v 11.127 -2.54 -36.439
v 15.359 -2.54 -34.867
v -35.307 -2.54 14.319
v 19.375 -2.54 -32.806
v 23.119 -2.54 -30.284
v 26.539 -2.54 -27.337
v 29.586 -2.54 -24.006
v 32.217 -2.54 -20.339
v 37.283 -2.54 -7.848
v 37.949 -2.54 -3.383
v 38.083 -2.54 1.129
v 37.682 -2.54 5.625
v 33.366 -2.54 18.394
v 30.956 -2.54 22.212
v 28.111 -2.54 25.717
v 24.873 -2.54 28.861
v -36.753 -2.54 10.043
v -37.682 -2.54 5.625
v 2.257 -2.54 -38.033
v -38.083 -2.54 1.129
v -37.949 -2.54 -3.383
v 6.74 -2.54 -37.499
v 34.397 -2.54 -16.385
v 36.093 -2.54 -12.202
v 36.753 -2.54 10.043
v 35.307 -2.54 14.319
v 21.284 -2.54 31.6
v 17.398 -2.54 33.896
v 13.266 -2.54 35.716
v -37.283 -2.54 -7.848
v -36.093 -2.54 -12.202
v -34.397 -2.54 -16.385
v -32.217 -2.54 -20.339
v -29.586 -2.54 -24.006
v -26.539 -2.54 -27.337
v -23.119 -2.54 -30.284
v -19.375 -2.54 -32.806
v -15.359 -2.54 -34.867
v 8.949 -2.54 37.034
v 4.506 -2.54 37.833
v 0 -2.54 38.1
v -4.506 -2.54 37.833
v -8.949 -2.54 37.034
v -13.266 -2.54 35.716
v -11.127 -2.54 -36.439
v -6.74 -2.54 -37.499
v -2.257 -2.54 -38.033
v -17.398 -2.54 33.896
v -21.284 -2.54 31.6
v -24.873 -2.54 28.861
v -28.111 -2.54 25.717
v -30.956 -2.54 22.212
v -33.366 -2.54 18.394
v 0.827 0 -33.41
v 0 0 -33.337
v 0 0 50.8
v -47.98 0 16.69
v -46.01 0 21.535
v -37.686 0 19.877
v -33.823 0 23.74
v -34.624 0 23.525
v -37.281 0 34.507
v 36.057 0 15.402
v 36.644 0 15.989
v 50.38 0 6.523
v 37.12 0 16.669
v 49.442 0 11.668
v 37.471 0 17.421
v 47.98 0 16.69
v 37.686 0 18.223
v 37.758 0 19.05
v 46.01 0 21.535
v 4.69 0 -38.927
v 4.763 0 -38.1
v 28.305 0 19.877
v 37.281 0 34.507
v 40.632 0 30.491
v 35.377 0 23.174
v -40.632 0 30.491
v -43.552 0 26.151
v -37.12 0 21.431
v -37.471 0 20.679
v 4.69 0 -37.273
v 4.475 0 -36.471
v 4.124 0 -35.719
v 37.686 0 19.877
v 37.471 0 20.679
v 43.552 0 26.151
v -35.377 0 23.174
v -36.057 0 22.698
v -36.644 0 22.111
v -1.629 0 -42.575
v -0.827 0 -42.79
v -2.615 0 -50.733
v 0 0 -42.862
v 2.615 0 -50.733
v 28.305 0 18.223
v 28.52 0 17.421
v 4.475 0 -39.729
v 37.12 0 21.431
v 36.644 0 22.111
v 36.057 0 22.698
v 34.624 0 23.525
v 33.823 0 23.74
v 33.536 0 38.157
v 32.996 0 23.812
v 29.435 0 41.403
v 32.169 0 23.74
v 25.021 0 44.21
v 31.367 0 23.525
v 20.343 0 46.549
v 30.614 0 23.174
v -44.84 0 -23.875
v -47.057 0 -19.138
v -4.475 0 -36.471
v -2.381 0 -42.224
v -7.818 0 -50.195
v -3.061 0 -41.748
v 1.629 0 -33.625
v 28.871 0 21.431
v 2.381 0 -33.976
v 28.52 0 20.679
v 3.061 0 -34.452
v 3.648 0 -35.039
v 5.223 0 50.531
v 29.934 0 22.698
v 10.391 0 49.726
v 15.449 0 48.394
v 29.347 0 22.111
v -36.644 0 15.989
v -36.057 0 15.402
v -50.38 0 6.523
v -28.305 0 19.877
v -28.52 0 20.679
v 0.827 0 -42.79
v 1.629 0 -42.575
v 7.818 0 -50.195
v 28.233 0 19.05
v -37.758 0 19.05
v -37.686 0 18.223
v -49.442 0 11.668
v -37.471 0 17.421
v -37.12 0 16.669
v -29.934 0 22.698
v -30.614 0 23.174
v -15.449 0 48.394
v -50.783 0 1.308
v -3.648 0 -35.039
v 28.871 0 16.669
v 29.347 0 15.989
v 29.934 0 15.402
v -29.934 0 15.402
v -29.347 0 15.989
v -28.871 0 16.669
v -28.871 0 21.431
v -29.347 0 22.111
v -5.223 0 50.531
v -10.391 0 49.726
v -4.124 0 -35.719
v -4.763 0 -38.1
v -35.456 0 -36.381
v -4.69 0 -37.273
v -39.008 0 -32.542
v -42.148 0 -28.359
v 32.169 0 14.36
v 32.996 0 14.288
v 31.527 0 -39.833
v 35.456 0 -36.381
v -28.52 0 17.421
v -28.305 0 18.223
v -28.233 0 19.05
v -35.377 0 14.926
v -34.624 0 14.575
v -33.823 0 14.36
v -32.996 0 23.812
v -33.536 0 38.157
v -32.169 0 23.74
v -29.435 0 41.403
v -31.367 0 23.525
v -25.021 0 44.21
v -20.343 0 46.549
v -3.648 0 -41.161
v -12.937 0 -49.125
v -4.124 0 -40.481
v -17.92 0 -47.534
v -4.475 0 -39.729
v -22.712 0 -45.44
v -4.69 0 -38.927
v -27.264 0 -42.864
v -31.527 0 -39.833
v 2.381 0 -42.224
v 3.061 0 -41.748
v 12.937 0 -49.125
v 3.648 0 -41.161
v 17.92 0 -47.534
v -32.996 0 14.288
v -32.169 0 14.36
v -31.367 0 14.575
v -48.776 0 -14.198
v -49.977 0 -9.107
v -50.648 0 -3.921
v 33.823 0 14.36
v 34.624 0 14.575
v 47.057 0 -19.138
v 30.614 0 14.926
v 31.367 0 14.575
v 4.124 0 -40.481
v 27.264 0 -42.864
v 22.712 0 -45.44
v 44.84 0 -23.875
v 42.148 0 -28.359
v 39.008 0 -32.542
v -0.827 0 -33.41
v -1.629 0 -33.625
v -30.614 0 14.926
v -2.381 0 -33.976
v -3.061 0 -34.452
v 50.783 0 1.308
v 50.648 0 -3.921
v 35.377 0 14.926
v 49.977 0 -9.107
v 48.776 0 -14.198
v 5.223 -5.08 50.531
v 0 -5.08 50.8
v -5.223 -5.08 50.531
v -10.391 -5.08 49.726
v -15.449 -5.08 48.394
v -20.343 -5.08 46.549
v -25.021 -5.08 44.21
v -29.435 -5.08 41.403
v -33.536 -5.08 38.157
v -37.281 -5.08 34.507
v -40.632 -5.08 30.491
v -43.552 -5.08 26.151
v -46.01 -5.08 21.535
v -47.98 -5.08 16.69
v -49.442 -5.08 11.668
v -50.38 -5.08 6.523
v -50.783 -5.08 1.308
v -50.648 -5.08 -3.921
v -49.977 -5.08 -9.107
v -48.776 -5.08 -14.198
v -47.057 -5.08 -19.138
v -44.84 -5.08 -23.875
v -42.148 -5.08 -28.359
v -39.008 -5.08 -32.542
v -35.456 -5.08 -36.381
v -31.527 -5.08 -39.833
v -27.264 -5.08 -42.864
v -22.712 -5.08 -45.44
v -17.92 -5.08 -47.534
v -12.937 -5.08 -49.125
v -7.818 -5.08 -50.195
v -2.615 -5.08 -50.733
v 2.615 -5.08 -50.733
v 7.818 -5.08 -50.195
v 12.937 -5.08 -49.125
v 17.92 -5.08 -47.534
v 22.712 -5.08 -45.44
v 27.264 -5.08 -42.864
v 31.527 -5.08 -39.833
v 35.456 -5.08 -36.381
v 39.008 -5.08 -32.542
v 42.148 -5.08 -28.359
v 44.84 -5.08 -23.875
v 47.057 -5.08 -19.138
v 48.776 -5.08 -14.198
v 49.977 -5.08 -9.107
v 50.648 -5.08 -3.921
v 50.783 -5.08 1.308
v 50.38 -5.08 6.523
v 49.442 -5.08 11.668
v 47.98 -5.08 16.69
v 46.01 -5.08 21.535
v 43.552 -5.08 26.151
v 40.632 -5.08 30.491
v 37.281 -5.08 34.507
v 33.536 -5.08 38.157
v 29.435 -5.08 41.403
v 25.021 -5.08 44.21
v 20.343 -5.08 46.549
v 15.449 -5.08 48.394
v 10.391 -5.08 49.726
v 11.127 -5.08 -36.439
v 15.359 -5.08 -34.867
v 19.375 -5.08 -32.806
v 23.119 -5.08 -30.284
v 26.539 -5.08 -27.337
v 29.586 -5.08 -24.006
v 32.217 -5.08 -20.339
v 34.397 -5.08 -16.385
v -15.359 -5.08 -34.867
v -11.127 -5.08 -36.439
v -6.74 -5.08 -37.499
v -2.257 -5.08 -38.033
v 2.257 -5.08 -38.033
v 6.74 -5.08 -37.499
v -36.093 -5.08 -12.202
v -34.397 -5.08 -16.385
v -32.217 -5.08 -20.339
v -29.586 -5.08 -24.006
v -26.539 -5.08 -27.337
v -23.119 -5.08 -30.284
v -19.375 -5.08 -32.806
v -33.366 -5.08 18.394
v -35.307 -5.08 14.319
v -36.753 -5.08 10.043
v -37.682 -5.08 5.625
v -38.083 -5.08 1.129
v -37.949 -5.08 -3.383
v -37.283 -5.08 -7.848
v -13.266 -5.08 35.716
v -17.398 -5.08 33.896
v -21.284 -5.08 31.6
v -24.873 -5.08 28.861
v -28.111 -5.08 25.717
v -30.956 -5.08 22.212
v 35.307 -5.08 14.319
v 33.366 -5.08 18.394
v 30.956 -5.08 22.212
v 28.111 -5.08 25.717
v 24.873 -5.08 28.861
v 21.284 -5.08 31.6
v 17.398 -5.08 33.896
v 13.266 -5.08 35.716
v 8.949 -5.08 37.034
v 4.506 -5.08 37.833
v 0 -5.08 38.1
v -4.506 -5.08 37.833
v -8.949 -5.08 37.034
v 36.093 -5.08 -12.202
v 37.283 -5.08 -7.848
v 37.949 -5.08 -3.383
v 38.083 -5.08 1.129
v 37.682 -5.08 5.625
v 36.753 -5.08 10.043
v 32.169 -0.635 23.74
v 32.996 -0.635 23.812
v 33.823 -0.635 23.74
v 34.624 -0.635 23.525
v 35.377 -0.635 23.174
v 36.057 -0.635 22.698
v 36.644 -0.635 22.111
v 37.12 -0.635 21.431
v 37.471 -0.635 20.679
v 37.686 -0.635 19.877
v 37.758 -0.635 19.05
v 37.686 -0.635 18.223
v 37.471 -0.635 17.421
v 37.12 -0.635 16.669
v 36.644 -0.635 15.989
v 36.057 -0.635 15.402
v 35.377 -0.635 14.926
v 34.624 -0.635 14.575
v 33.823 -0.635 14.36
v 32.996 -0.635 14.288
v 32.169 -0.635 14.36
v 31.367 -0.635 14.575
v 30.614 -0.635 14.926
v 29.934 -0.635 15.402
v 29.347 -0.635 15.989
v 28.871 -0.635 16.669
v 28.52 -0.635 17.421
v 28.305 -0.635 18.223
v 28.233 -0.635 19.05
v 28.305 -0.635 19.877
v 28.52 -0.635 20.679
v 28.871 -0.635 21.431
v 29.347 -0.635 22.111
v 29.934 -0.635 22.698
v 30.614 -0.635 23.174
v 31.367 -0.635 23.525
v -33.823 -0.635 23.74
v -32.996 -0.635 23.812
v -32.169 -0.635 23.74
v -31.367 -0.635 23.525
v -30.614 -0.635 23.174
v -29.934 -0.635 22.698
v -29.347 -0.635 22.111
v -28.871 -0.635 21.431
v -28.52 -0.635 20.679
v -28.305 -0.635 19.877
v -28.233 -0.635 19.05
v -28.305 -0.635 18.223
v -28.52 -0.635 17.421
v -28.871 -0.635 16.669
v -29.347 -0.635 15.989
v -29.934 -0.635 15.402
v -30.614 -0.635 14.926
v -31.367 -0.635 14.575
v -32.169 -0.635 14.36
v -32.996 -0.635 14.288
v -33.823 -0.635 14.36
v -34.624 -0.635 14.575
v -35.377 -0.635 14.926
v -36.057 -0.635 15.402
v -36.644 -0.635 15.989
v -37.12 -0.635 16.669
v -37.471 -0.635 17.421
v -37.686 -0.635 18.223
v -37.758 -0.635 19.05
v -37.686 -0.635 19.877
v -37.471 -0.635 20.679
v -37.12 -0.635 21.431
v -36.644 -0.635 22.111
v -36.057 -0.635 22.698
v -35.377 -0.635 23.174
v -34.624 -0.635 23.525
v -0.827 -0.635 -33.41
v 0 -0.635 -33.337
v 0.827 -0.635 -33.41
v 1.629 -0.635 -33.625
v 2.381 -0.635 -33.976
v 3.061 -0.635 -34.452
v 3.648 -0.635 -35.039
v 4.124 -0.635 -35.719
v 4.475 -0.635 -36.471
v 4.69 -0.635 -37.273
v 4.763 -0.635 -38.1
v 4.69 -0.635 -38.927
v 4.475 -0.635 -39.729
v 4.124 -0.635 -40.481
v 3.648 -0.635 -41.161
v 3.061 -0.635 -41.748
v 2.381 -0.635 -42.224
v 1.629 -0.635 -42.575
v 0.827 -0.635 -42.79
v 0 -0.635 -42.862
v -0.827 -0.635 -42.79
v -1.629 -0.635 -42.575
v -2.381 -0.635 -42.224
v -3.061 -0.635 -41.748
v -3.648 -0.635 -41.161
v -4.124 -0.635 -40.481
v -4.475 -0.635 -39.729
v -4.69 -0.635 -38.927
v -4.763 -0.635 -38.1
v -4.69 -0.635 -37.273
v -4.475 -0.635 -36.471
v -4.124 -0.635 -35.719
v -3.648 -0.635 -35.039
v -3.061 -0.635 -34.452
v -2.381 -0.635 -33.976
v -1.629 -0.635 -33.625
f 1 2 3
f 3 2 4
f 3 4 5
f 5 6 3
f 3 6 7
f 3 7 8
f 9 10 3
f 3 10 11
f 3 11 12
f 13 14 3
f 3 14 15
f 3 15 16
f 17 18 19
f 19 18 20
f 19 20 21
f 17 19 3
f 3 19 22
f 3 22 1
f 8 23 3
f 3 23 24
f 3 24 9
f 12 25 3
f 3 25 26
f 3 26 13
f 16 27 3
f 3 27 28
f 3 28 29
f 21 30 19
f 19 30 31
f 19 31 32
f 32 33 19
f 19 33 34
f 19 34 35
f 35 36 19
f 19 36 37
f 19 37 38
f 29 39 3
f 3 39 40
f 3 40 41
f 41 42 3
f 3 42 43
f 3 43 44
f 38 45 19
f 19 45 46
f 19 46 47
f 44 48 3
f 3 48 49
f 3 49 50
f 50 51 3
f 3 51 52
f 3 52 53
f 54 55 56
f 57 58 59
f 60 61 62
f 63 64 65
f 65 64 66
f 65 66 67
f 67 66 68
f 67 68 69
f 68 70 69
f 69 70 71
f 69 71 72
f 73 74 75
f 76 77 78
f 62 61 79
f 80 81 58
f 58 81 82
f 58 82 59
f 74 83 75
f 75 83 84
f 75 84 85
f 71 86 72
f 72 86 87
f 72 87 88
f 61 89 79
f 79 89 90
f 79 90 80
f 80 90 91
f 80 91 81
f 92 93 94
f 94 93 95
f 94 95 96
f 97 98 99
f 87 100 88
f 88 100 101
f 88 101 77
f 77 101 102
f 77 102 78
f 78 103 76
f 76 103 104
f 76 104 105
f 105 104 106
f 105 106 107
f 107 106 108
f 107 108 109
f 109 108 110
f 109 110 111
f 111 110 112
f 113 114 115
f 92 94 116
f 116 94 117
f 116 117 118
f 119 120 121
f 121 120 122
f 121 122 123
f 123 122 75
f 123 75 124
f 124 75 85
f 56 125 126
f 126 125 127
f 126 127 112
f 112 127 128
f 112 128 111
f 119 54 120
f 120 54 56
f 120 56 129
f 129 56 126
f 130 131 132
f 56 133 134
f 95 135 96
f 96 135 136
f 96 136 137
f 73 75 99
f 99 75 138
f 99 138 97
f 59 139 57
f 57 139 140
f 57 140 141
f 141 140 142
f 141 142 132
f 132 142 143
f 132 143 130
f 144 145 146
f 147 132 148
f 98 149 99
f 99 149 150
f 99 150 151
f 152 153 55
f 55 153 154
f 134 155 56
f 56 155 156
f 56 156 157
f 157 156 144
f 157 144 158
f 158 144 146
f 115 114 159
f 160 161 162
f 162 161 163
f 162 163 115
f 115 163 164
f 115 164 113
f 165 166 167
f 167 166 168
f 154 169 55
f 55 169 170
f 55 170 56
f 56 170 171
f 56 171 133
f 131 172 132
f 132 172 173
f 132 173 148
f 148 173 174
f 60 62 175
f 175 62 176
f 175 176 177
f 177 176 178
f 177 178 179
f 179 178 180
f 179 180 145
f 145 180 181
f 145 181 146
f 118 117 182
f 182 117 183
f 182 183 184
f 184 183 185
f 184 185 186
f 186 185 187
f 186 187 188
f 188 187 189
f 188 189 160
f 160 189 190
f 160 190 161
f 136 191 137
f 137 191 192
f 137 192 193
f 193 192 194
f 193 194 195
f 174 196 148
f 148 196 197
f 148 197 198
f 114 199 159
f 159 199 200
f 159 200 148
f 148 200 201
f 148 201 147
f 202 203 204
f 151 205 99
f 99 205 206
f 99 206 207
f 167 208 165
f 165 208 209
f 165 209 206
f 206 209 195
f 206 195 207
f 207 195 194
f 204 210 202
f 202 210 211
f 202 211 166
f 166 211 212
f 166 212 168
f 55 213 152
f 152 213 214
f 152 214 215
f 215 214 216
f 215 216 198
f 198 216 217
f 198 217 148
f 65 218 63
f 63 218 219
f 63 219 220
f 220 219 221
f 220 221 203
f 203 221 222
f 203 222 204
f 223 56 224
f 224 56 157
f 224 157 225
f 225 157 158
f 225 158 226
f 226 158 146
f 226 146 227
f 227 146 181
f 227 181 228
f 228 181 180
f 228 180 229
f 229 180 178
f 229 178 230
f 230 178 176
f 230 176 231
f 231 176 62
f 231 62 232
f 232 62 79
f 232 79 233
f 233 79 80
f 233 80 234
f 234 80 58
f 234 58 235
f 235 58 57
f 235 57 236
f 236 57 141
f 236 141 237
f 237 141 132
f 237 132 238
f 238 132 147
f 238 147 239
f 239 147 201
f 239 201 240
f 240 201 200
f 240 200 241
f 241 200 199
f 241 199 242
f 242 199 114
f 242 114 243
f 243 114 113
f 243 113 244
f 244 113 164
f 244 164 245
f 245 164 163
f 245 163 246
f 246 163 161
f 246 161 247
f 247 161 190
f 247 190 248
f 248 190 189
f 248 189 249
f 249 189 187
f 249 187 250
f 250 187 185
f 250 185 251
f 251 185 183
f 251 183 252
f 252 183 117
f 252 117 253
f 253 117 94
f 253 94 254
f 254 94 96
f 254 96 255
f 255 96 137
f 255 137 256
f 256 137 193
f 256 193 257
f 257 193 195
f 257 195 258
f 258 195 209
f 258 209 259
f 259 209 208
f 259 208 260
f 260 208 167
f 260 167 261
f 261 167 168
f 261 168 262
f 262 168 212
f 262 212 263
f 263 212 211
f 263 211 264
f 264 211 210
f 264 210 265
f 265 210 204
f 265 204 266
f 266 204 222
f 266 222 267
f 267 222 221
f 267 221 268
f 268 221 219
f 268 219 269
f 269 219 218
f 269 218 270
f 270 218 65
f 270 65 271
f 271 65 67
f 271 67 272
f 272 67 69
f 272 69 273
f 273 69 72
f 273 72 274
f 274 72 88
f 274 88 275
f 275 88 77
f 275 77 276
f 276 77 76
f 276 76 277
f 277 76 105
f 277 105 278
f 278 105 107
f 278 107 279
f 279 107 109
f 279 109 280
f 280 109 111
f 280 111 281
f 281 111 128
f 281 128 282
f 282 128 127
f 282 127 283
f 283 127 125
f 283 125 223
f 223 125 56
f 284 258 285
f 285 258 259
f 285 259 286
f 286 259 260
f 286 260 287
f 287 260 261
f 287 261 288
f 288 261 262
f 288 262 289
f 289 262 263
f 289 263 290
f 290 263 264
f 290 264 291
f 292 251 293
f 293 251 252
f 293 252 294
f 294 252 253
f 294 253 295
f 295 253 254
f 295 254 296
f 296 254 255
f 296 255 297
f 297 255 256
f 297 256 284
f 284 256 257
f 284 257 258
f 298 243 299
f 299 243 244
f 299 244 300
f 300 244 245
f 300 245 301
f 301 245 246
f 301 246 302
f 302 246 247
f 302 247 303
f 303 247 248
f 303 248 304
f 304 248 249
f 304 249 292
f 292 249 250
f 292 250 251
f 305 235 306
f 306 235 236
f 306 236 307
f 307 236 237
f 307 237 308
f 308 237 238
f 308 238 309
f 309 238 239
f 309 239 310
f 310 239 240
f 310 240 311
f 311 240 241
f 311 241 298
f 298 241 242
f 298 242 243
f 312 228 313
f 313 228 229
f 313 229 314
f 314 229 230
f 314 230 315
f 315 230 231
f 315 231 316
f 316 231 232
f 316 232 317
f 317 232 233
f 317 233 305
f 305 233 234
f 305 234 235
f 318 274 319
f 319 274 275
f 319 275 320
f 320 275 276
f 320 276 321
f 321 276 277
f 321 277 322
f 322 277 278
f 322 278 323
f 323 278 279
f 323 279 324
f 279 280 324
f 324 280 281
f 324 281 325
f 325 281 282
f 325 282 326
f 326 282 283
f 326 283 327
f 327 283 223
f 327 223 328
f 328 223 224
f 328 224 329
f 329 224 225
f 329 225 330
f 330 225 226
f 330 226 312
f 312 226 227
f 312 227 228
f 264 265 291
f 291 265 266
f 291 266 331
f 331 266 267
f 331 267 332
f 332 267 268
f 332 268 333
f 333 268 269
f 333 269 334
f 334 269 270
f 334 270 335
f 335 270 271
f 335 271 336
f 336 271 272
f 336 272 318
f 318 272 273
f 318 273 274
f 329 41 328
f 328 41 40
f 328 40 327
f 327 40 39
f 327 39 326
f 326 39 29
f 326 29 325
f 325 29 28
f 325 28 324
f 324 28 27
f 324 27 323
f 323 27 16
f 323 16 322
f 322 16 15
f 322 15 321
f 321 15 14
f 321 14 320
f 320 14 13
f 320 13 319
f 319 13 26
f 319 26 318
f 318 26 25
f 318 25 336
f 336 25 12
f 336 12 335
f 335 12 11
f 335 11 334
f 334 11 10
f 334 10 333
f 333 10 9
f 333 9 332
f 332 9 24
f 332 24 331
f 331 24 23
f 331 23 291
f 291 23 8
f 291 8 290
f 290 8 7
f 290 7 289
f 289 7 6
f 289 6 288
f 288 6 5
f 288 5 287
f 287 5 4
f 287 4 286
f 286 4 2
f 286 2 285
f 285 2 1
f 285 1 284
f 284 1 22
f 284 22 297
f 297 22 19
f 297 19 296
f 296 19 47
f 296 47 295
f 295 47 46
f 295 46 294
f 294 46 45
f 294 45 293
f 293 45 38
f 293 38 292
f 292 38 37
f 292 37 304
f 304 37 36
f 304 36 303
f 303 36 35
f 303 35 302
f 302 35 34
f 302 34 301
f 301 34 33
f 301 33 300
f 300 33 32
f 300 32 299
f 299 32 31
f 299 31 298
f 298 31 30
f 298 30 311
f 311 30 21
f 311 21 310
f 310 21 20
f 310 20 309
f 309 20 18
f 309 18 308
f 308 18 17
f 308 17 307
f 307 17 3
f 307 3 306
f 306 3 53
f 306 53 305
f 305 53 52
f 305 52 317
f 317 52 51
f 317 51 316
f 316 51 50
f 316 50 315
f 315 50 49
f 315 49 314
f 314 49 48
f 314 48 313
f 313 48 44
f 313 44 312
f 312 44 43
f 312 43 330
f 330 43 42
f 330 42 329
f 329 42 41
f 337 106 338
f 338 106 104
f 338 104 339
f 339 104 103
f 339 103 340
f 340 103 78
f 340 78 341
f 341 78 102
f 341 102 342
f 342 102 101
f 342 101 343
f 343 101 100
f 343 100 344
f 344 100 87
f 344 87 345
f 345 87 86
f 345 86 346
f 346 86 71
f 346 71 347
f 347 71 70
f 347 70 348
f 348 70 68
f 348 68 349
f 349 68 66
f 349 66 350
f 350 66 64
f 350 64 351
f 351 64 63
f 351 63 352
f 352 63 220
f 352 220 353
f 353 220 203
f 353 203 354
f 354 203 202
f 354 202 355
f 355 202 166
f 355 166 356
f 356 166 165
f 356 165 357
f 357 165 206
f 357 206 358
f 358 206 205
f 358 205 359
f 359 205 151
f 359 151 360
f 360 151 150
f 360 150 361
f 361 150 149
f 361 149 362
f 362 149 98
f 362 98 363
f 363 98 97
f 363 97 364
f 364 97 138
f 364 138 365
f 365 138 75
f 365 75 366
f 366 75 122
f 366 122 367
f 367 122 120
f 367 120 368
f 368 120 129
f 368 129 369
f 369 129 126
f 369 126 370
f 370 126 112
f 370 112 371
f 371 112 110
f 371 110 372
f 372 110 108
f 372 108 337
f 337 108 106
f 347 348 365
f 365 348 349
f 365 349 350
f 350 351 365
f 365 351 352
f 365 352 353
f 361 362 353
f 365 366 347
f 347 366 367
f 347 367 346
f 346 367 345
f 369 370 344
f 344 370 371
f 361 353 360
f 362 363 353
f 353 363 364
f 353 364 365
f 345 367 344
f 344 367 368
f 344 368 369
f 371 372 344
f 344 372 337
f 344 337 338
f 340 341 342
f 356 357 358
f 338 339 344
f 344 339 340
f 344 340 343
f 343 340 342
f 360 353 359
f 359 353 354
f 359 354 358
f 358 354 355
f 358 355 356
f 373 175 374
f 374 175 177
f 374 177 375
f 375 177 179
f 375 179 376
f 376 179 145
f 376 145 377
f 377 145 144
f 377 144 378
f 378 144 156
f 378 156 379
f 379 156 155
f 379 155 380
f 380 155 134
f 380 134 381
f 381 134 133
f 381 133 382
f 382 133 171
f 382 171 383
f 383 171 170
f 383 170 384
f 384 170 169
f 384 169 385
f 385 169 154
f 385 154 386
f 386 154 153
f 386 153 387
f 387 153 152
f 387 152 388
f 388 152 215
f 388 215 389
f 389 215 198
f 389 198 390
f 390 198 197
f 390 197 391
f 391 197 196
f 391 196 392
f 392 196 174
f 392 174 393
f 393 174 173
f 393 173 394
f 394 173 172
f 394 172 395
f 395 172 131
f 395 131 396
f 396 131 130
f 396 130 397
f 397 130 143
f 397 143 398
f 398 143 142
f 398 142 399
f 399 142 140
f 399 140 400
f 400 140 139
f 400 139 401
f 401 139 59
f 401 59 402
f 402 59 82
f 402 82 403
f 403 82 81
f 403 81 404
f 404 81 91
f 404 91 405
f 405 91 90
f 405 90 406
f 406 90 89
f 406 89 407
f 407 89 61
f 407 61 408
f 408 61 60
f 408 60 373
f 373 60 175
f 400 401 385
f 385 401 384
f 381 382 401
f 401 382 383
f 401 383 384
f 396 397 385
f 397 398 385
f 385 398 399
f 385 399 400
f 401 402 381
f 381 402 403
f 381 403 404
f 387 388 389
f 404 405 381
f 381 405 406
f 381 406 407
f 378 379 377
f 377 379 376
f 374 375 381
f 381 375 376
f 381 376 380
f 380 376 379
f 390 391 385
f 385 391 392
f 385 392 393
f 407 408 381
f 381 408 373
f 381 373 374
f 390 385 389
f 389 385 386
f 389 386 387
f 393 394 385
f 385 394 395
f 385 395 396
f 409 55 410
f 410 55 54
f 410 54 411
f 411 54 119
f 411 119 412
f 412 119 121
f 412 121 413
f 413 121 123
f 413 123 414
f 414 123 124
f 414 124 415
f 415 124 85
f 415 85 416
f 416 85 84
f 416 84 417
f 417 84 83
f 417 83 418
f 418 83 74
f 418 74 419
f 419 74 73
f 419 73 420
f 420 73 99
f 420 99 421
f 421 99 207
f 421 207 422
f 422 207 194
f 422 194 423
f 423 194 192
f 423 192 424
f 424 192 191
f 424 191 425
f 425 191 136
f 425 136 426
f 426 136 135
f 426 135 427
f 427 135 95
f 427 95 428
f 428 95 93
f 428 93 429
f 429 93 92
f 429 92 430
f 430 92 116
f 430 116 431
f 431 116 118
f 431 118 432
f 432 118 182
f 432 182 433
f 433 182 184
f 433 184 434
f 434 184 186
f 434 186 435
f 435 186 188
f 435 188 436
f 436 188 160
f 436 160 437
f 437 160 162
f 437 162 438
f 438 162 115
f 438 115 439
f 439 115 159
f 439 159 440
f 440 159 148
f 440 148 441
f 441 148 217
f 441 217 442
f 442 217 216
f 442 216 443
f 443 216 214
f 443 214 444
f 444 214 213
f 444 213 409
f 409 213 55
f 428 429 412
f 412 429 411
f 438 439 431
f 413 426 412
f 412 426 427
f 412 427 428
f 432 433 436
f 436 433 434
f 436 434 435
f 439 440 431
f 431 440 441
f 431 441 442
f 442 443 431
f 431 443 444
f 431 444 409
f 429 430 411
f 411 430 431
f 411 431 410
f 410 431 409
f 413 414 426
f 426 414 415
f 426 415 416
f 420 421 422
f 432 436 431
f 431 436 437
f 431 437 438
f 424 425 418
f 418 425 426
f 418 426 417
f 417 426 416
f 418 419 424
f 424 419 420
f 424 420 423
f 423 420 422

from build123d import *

# Parameters (mm, degrees)
CUT_EXTRUDE1_DEPTH = 0.635
SKETCH4_R          = 4.7625
CUT_EXTRUDE2_DEPTH = 0.635


with BuildPart() as part:
    # Sketch1 → Revolve1 (revolve)
    with BuildSketch(Plane.XY, mode=Mode.PRIVATE) as revolve1_sk:
        Polygon((-38.1, -2.54), (0, -2.54), (0, 0), (-50.8, 0), (-50.8, -5.08), (-38.1, -5.08), align=None)
    revolve(revolve1_sk.sketch.rotate(Axis((0, 4.567685351, 0), (0, -1, 0)), 270), axis=Axis((0, 4.567685351, 0), (0, -1, 0)))

    # Sketch3 → Cut-Extrude1 (cut)
    with BuildSketch(Plane(origin=(0, 0, 0), x_dir=(1, 0, 0), z_dir=(0, 1, 0))):
        Polygon((-1.833087105, 41.275), (-3.666174209, 38.1), (-1.833087105, 34.925), (1.833087105, 34.925), (3.666174209, 38.1), (1.833087105, 41.275), align=None)
        Polygon((-34.828654989, -15.875), (-36.661742094, -19.05), (-34.828654989, -22.225), (-31.16248078, -22.225), (-29.329393675, -19.05), (-31.16248078, -15.875), align=None)
        Polygon((34.828654989, -15.875), (31.16248078, -15.875), (29.329393675, -19.05), (31.16248078, -22.225), (34.828654989, -22.225), (36.661742094, -19.05), align=None)
    extrude(amount=-CUT_EXTRUDE1_DEPTH, mode=Mode.SUBTRACT)

    # Sketch4 → Cut-Extrude2 (cut)
    with BuildSketch(Plane(origin=(0, 0, 0), x_dir=(1, 0, 0), z_dir=(0, 1, 0))):
        with Locations(Location((32.995567884, -19.05, 0), (0, 0, 270))):
            Circle(SKETCH4_R)
        with Locations(Location((-32.995567884, -19.05, 0), (0, 0, 270))):
            Circle(SKETCH4_R)
        with Locations(Location((0, 38.1, 0), (0, 0, 270))):
            Circle(SKETCH4_R)
    extrude(amount=-CUT_EXTRUDE2_DEPTH, mode=Mode.SUBTRACT)


solid = part.part
